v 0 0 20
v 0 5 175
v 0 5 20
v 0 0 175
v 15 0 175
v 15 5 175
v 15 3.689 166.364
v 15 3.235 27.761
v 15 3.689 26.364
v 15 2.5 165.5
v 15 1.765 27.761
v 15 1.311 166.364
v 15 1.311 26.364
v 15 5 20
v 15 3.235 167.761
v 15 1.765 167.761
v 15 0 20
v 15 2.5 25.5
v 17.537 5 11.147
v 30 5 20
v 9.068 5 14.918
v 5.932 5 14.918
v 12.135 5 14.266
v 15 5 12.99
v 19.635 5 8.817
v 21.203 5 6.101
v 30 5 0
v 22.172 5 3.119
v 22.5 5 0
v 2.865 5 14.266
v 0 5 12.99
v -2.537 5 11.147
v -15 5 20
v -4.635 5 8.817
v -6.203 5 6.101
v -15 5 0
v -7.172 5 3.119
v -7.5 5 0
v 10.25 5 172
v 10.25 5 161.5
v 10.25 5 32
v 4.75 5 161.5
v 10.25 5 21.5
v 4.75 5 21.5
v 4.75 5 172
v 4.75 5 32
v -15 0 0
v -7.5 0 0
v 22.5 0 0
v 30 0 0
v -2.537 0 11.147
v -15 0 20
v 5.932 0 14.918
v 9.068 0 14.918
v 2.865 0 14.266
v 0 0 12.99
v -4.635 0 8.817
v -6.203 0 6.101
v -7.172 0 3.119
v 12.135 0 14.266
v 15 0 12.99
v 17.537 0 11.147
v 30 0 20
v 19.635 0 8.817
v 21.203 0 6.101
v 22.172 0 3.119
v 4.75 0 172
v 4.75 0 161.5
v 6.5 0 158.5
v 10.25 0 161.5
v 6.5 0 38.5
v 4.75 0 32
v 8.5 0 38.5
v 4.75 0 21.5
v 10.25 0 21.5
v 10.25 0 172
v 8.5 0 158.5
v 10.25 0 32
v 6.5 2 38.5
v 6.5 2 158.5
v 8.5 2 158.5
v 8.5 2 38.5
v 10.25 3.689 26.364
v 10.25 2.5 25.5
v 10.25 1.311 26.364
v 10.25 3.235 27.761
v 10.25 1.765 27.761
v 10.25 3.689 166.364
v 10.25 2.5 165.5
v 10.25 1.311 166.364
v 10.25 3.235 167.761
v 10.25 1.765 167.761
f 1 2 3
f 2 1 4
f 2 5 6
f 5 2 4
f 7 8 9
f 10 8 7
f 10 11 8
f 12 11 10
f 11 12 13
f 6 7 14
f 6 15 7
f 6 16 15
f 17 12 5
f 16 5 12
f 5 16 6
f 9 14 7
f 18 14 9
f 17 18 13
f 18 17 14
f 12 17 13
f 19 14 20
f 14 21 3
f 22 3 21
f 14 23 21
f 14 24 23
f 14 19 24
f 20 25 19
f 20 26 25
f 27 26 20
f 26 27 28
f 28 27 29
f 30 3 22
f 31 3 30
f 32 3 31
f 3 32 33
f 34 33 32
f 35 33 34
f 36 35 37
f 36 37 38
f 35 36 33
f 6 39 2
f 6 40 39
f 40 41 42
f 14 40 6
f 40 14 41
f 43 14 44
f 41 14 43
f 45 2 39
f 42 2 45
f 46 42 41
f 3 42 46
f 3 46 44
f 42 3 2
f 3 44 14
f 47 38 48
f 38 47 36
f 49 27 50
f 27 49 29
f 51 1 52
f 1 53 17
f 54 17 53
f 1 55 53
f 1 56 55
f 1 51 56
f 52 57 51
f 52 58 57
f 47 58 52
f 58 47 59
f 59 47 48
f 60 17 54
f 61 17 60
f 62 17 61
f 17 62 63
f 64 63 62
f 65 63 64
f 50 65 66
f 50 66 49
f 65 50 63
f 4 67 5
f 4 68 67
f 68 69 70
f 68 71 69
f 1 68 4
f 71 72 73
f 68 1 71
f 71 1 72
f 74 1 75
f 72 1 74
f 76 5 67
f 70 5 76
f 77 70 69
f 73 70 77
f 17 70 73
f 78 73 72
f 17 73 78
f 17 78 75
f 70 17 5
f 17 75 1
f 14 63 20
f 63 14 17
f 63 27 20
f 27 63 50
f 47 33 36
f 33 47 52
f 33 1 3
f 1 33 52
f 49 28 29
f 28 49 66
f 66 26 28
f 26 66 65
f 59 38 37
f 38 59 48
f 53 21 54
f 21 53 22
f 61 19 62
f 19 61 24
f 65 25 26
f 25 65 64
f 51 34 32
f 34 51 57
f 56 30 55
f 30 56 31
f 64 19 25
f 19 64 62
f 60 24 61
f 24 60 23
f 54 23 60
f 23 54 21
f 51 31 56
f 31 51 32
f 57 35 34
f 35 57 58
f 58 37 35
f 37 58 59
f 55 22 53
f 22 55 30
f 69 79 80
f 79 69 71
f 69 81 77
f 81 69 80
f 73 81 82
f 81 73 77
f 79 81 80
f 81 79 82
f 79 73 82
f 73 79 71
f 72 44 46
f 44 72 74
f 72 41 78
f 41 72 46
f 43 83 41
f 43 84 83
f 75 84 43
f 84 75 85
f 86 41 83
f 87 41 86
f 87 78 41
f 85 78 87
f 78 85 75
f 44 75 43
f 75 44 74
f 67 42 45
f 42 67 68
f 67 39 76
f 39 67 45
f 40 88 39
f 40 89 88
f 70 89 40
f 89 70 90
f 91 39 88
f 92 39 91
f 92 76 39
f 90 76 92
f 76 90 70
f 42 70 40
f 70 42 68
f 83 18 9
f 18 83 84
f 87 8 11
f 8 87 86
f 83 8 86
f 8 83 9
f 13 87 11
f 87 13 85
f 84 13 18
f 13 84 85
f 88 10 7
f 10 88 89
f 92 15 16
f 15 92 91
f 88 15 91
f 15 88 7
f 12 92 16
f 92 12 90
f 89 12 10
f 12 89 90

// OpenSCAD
/////////////////////////////////////////////////////////////////////////////////
// Adapter for drilling machine in the embedded lab.
//
// Author:              Maximilian Stiefel
// Last modification:   10.06.2017
/////////////////////////////////////////////////////////////////////////////////

/////////////////////////////////////////////////////////////////////////////////
// Vars
/////////////////////////////////////////////////////////////////////////////////
holder_height = 175;
holder_width = 15;
holder_depth = 5;

notch_height = 120;
notch_width = 2;
notch_depth = 3;

allowance = 0.5;

crossbar_height = 10 + allowance;
crossbar_width = 5 + allowance;
crossbar_depth = 175;

pillar_height = 20;
pillar_width = 15;
pillar_depth = holder_depth;

airpump_diameter = 30;

// Suitable for M3 screw thread
hole_diameter = 2.5;

// Height difference between notch for PCB and the actual holder
height_diff_1 = holder_height - notch_height;

// Height difference between notch position and crossbar_slot
height_diff_2 = 0.7*height_diff_1 - airpump_diameter/2;

// Width difference between crossbar and holder
width_diff_1 = holder_width - crossbar_width; 

// With difference between 
width_diff_2 = pillar_width - holder_width;

/////////////////////////////////////////////////////////////////////////////////
// Action
/////////////////////////////////////////////////////////////////////////////////
difference()
{
union()
{
	// Cube for the base holder
	cube([holder_width, holder_depth, holder_height], center = false);
	// Pillars
	translate([holder_width , 0, 0])
	cube([pillar_width, pillar_depth, pillar_height]);
	translate([-pillar_width, 0, 0])
	cube([pillar_width, pillar_depth, pillar_height]);
}

union()
{
	// Drill holes for air pump
	translate([holder_width/2, holder_depth + 1, 0])
	rotate([90, 0, 0])
	cylinder(h = holder_depth + 2, r = airpump_diameter/2);

	// Cube for notch
	translate([holder_width/2 - notch_width/2, -1, 0.7*height_diff_1])
	cube([notch_width, notch_depth, notch_height], center = false);

	// Slots for crossbars
	translate([width_diff_1/2, -1, height_diff_2/2 + airpump_diameter/2 - crossbar_height/2])
	cube([crossbar_width, holder_depth + 2, crossbar_height], center = false);
	translate([width_diff_1/2, -1, holder_height - 0.3*height_diff_1/2 - crossbar_height/2])
	cube([crossbar_width, holder_depth + 2, crossbar_height], center = false);

	// Drill holes for screws
	translate([holder_width/2, holder_depth/2, height_diff_2/2 + airpump_diameter/2])
	rotate([0, 90, 0])
	cylinder(h = 9, r = hole_diameter/2);
	translate([holder_width/2, holder_depth/2, holder_height - 0.3*height_diff_1/2])
	rotate([0, 90, 0])
	cylinder(h = 9, r = hole_diameter/2);
}
}
